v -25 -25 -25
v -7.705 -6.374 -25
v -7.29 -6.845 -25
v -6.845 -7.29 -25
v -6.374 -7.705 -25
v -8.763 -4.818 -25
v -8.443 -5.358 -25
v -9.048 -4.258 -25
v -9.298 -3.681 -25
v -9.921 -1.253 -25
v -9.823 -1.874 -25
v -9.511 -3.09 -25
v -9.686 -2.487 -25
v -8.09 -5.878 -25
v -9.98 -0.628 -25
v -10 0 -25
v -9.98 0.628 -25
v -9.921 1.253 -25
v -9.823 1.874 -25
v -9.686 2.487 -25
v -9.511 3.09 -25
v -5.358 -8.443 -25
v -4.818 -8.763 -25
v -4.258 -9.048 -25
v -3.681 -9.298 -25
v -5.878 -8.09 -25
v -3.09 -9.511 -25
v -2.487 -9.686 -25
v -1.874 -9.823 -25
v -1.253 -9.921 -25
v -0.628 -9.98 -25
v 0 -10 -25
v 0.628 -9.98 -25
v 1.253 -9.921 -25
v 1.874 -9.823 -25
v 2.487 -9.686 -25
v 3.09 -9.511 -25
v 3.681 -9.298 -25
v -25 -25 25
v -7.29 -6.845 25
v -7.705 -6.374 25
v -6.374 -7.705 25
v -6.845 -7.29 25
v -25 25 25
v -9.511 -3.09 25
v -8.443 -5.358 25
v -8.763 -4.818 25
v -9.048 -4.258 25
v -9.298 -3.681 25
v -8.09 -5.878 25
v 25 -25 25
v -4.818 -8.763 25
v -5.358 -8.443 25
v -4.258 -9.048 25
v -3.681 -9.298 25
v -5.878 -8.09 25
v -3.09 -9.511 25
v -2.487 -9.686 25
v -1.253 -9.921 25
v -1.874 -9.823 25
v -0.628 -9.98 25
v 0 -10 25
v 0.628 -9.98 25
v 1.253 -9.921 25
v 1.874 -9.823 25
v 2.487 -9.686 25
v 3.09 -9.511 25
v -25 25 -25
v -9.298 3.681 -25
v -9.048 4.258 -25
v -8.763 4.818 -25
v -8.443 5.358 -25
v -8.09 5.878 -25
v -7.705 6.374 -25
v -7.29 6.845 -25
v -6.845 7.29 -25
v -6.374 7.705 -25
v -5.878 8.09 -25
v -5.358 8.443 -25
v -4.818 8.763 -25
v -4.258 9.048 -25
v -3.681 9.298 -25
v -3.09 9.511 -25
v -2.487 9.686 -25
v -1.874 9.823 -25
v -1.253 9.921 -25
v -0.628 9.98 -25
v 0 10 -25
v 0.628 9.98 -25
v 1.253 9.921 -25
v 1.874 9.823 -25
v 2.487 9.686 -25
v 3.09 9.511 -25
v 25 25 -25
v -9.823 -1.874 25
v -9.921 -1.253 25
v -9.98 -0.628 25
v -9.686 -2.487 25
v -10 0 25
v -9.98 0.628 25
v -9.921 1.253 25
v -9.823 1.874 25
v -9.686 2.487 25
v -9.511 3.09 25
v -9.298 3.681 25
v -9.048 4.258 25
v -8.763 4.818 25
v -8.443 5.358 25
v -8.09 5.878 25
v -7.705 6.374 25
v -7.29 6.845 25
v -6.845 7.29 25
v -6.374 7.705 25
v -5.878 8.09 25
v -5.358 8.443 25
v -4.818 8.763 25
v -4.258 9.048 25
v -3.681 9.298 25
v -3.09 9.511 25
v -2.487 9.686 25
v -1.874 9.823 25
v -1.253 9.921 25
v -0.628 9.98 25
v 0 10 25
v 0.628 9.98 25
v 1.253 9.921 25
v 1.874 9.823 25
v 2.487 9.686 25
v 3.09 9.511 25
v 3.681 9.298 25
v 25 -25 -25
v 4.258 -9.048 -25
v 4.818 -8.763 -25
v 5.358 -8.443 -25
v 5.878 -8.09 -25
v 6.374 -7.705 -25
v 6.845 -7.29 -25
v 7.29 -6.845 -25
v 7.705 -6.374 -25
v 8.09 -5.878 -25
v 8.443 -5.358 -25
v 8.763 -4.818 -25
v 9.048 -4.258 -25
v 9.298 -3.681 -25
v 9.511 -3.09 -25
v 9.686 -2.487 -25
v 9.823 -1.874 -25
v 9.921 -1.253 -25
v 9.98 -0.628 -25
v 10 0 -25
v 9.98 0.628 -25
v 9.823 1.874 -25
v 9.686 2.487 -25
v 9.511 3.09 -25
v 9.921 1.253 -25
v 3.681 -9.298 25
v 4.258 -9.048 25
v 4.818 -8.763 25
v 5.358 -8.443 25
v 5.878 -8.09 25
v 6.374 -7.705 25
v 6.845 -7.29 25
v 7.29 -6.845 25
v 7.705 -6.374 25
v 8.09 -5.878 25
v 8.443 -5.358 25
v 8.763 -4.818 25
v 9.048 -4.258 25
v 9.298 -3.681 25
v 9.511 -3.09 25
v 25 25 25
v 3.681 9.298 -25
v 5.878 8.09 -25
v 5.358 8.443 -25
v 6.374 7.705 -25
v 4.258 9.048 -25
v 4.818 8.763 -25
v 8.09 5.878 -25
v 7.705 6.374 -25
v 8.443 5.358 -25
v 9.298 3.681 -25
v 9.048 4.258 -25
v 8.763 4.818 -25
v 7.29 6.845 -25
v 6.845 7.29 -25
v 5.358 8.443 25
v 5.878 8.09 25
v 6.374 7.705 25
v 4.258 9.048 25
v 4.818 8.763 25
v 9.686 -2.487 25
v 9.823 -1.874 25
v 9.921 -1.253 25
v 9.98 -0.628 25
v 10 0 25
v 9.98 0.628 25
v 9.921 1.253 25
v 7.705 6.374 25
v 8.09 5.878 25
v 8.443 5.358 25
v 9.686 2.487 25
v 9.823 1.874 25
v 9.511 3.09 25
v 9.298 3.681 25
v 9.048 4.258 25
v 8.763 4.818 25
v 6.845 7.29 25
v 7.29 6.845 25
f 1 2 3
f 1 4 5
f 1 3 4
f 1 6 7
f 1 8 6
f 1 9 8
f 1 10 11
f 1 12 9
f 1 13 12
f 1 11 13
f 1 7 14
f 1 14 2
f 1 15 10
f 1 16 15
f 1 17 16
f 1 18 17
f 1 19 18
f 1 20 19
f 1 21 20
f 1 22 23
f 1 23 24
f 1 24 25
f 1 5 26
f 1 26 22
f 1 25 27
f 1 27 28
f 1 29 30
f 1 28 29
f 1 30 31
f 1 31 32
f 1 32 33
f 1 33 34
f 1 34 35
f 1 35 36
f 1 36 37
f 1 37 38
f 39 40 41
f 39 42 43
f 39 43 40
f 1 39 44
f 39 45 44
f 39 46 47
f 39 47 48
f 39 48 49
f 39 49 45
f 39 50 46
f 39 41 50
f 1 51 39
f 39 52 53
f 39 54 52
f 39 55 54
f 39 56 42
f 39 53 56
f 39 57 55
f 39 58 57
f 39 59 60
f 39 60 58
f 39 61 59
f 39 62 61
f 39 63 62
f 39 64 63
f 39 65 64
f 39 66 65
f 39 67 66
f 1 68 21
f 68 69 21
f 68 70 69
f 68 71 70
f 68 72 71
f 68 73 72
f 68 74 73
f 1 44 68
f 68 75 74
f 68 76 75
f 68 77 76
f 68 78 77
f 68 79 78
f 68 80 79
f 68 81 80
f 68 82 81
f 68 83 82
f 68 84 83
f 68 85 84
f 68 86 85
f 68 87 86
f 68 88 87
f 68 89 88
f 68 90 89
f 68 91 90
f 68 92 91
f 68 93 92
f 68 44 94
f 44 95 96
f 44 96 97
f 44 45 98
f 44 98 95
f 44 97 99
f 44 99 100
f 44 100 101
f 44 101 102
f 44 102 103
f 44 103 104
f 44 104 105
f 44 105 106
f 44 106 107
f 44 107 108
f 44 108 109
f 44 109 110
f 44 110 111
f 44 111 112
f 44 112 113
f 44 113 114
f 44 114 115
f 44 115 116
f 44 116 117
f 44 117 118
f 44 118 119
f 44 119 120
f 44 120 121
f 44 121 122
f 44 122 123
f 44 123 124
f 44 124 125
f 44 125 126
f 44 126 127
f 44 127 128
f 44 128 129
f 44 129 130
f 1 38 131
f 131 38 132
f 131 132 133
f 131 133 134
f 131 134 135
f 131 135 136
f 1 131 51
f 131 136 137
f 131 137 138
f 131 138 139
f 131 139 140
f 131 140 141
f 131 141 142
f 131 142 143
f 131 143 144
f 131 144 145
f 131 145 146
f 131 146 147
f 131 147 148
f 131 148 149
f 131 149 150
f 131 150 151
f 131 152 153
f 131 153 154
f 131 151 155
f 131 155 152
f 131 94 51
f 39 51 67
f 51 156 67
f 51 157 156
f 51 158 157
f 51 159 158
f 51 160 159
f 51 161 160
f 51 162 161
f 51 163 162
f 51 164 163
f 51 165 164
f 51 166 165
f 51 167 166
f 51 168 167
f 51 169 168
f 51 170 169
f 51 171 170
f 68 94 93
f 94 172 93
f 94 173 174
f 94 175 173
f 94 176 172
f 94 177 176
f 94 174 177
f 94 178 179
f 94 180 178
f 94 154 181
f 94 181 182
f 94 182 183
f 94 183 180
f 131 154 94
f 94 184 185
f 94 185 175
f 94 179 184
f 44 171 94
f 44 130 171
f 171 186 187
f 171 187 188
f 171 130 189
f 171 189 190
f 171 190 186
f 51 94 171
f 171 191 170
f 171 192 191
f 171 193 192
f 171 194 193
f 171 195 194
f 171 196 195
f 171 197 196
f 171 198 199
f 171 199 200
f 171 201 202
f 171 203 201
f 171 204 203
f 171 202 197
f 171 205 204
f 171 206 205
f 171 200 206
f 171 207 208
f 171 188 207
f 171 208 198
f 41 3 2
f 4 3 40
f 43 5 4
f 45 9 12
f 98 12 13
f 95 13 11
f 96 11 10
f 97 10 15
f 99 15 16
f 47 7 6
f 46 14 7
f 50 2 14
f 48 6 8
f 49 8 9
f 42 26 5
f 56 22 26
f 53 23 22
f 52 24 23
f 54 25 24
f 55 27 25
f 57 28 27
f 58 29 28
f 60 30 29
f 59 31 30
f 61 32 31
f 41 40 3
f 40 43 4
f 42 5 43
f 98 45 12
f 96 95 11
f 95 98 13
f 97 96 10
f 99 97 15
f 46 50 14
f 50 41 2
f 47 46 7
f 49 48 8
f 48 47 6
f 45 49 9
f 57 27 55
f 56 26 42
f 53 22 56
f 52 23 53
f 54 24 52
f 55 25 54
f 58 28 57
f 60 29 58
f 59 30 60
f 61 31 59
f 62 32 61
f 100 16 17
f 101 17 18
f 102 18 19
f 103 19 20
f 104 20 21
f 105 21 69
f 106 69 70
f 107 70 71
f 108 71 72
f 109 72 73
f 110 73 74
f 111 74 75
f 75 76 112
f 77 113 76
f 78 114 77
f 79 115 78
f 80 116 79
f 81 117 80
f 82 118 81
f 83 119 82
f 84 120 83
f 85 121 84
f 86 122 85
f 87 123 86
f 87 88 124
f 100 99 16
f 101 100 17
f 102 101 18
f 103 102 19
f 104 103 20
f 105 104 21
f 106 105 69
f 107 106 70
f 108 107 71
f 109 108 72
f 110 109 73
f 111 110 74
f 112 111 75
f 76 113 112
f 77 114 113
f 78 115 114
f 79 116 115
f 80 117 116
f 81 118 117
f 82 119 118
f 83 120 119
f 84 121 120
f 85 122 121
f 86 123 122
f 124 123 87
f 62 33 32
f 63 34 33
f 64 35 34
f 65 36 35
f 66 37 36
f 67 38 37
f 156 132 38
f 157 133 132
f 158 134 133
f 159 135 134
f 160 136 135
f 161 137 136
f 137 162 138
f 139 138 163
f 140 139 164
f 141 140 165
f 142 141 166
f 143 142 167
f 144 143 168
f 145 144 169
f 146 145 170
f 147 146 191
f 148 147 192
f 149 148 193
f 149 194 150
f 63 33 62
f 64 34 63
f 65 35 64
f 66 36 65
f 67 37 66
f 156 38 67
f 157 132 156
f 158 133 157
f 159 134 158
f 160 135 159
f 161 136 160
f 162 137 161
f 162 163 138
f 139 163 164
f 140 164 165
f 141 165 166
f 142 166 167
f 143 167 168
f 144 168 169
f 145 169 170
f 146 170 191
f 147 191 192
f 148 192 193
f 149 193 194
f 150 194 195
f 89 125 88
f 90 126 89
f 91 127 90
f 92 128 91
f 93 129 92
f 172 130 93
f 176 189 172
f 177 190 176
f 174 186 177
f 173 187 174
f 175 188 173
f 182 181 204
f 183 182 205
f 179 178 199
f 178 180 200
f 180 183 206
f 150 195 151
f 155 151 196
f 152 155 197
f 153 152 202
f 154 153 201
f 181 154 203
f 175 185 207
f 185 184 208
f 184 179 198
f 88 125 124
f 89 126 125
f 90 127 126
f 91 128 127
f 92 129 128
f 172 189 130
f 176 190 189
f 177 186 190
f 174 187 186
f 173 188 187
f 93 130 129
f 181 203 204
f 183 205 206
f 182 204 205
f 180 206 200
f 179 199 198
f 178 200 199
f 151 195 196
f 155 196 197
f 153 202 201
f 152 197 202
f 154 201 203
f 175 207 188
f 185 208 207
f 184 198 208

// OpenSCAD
difference() {
    cube([50, 50, 50], center=true);
    cylinder(d=20, h=60, center=true, $fn=100);
}
